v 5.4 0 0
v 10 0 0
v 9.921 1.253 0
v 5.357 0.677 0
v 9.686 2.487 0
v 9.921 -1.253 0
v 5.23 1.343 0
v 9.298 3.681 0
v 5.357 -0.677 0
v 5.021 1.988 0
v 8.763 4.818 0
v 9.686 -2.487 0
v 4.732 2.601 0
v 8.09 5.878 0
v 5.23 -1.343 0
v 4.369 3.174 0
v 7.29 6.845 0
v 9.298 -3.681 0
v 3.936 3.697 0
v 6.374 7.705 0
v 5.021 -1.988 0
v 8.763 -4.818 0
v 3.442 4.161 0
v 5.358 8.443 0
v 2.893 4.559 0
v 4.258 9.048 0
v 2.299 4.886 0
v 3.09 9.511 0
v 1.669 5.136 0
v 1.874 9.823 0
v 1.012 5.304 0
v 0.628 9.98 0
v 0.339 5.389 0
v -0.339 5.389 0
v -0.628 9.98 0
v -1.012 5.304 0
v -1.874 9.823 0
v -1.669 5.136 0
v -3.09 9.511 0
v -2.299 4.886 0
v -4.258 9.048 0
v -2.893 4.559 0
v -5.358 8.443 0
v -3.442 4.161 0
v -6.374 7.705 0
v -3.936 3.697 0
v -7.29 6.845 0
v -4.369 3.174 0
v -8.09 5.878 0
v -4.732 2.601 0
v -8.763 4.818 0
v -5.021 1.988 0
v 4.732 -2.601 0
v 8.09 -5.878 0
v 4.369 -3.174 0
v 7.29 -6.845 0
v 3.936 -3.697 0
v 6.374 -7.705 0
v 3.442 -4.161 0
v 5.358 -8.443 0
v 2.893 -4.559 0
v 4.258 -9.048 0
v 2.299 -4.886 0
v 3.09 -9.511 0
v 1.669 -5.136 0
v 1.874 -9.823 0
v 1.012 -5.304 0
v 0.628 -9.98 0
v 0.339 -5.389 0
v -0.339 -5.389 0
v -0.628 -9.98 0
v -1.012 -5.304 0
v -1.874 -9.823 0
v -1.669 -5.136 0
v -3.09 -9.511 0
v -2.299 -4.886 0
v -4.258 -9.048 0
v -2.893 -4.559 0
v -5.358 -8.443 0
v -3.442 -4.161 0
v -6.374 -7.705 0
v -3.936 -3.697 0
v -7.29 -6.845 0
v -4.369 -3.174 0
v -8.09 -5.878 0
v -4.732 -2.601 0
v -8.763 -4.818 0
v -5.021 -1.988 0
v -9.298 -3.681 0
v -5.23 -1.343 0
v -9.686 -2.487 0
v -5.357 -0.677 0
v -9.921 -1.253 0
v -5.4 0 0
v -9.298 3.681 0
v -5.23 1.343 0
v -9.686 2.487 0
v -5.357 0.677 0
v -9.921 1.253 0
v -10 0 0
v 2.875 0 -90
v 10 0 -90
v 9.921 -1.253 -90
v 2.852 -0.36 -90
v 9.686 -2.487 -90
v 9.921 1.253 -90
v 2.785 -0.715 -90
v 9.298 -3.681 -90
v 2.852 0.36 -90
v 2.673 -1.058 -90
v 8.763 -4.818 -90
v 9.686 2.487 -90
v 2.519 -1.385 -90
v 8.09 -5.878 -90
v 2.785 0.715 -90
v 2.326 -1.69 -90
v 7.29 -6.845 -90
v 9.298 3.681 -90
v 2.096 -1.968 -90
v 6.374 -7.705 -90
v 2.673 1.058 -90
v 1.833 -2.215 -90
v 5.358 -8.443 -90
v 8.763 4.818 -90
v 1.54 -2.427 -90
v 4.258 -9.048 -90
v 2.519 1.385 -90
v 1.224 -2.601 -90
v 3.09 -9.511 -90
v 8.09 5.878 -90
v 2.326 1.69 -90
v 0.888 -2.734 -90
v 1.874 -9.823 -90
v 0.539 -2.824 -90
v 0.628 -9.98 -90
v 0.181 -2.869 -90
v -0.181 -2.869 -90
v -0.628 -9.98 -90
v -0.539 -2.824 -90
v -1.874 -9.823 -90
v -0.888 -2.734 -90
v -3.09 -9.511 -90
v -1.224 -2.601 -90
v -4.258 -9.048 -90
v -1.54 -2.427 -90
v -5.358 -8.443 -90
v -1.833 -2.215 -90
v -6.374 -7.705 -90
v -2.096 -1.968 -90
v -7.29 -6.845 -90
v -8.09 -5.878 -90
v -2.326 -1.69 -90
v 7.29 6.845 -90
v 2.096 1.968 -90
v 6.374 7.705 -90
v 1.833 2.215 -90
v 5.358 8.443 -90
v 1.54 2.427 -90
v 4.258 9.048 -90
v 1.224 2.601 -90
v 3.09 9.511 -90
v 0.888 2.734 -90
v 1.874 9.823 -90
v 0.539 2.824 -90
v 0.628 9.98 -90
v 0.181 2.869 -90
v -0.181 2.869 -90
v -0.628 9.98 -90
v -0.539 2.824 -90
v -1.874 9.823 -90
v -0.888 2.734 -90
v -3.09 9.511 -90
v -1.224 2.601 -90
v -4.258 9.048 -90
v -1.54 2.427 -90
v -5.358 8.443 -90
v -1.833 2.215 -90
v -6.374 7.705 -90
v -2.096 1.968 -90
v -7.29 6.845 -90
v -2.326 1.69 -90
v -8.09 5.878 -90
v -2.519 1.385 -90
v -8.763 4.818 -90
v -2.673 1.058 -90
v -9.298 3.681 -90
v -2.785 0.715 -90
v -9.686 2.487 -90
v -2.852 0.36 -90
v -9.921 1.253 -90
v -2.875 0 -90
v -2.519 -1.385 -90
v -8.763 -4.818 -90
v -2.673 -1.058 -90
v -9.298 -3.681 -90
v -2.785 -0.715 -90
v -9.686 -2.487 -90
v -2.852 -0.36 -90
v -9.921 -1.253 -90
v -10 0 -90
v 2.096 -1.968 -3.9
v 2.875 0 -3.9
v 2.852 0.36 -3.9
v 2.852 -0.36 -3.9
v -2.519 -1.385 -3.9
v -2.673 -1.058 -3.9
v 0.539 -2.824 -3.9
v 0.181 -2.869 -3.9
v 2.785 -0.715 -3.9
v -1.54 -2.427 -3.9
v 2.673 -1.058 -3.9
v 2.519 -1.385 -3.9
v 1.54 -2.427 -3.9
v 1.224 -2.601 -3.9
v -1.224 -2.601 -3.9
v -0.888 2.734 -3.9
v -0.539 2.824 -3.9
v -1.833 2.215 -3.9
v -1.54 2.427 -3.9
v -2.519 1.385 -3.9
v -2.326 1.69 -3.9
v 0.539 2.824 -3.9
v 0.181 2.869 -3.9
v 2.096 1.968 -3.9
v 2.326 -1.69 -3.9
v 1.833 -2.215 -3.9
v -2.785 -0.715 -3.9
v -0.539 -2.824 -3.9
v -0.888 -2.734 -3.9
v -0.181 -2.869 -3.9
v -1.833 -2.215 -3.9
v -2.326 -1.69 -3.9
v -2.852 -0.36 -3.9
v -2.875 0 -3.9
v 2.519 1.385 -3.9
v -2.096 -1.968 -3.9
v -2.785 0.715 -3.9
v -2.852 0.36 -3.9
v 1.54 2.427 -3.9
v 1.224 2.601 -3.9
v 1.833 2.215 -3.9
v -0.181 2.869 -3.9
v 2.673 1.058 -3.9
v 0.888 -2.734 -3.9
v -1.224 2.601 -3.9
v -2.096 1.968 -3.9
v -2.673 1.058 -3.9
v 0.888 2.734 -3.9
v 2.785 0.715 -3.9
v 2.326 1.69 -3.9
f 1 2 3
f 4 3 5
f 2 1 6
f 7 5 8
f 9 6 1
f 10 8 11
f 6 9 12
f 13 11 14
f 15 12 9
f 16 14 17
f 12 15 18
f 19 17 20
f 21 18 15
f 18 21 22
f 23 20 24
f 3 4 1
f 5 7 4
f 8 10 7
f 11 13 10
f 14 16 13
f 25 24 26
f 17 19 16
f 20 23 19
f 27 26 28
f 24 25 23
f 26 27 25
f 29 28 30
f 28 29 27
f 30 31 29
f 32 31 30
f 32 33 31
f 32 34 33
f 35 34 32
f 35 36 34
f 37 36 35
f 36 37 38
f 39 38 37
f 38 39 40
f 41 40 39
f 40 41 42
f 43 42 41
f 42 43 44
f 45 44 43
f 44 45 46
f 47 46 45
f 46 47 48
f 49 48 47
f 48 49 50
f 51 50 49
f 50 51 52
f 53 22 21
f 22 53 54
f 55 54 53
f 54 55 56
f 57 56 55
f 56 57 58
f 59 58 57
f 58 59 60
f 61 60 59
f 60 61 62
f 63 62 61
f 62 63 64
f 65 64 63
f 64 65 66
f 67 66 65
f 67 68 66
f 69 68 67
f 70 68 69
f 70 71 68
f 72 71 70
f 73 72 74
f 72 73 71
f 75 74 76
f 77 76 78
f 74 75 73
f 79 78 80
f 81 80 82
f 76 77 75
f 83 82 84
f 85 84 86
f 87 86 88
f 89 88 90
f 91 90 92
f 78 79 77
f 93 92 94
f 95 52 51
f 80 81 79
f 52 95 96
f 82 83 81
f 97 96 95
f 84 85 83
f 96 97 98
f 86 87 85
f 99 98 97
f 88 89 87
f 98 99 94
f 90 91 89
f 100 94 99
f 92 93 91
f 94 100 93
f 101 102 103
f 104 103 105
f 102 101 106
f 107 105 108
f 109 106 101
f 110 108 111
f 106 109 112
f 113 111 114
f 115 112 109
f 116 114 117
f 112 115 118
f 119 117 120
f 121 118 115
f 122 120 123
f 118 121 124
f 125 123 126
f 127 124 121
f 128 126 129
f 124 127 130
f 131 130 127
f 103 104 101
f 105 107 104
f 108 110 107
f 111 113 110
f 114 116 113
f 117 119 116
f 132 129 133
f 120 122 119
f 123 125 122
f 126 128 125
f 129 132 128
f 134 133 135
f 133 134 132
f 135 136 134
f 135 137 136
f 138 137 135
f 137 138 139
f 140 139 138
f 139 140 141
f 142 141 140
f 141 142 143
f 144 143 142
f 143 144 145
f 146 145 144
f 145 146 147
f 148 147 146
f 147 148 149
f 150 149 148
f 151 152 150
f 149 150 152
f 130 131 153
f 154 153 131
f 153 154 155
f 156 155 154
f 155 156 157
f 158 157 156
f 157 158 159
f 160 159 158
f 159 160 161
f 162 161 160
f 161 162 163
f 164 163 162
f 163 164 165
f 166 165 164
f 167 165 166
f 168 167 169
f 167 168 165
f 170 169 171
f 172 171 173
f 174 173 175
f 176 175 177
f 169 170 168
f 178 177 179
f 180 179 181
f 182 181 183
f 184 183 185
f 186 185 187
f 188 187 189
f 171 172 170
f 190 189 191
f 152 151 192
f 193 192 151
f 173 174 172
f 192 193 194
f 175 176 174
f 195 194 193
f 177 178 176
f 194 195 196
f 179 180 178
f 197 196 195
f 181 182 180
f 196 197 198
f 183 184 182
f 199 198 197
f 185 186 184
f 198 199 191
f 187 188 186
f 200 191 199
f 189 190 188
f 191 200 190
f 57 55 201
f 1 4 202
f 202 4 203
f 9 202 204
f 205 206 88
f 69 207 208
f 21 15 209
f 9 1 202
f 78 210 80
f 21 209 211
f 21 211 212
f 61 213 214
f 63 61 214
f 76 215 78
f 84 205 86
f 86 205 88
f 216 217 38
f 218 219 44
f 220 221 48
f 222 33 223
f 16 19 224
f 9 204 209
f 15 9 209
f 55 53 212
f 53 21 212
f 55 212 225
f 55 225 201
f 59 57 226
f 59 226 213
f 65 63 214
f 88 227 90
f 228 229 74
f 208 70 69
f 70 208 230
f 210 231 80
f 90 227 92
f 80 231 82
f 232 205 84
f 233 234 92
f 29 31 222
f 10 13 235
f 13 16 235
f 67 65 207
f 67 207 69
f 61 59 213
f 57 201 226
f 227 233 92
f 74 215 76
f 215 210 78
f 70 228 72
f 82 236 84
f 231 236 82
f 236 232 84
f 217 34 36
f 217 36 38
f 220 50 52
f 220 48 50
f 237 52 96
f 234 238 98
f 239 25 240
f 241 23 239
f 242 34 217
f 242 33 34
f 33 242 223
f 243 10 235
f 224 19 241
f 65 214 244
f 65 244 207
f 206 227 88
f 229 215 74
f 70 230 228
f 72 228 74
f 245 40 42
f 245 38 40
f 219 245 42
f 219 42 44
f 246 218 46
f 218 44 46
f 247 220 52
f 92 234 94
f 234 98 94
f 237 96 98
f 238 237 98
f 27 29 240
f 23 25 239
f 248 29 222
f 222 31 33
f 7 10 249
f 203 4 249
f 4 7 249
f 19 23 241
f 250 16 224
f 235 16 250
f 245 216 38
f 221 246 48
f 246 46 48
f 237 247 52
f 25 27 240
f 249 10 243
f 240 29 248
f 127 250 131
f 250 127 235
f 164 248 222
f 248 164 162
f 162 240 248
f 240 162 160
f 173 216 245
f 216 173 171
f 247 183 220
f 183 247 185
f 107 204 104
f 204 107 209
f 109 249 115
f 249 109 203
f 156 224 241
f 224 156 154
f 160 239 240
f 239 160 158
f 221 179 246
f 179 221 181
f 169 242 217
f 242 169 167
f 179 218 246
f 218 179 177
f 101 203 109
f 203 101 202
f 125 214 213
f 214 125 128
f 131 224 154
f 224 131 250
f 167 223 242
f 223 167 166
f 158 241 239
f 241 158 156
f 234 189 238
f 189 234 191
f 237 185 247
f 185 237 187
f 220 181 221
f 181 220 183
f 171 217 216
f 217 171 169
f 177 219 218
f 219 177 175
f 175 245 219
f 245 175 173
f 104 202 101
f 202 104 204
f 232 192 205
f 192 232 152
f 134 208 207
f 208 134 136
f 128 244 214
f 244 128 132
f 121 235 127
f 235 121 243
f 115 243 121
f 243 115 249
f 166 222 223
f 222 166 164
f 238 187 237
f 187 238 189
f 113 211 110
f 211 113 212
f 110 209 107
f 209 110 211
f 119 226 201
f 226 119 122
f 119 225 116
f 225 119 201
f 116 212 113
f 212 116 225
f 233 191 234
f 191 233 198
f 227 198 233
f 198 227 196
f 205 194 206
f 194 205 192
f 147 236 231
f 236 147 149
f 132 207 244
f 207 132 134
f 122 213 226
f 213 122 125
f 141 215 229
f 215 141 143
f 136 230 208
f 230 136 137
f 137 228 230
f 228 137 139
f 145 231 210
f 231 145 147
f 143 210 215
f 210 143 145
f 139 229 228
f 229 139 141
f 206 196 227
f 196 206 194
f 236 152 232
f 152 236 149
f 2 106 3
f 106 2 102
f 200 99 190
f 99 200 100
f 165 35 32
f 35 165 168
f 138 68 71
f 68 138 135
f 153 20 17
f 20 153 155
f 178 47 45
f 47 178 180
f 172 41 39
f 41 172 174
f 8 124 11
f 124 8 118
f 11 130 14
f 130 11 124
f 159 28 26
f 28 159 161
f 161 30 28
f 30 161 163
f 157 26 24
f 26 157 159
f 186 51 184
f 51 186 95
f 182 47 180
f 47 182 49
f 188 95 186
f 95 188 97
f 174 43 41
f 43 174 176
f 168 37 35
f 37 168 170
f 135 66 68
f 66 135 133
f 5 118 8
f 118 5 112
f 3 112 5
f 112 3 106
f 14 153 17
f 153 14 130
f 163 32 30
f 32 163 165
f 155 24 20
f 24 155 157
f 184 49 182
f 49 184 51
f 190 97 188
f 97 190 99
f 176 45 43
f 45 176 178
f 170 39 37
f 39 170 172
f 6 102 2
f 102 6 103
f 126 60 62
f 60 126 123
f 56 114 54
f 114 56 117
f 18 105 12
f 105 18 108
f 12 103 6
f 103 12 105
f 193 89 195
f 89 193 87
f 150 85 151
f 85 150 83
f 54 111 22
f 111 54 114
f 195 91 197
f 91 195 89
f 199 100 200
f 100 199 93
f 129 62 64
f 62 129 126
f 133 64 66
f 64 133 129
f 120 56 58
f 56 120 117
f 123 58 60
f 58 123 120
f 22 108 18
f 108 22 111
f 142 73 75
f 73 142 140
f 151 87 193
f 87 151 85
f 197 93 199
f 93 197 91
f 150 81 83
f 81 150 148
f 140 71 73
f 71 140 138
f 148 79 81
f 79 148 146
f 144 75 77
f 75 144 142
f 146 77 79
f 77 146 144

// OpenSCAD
$fn = 50;


difference() {
	union() {
		translate(v = [0, 0, -90.0000000000]) {
			cylinder(h = 90, r = 10.0000000000);
		}
	}
	union() {
		translate(v = [0, 0, 0]) {
			rotate(a = [0, 0, 0]) {
				difference() {
					union() {
						#translate(v = [0, 0, -90.0000000000]) {
							cylinder(h = 90, r = 2.6000000000);
						}
						#translate(v = [0, 0, -3.9000000000]) {
							cylinder(h = 3.9000000000, r = 10.0000000000, r1 = 2.8750000000, r2 = 5.4000000000);
						}
						#translate(v = [0, 0, -90.0000000000]) {
							cylinder(h = 90, r = 2.8750000000);
						}
						#translate(v = [0, 0, -90.0000000000]) {
							cylinder(h = 90, r = 2.6000000000);
						}
					}
					union();
				}
			}
		}
	}
}
